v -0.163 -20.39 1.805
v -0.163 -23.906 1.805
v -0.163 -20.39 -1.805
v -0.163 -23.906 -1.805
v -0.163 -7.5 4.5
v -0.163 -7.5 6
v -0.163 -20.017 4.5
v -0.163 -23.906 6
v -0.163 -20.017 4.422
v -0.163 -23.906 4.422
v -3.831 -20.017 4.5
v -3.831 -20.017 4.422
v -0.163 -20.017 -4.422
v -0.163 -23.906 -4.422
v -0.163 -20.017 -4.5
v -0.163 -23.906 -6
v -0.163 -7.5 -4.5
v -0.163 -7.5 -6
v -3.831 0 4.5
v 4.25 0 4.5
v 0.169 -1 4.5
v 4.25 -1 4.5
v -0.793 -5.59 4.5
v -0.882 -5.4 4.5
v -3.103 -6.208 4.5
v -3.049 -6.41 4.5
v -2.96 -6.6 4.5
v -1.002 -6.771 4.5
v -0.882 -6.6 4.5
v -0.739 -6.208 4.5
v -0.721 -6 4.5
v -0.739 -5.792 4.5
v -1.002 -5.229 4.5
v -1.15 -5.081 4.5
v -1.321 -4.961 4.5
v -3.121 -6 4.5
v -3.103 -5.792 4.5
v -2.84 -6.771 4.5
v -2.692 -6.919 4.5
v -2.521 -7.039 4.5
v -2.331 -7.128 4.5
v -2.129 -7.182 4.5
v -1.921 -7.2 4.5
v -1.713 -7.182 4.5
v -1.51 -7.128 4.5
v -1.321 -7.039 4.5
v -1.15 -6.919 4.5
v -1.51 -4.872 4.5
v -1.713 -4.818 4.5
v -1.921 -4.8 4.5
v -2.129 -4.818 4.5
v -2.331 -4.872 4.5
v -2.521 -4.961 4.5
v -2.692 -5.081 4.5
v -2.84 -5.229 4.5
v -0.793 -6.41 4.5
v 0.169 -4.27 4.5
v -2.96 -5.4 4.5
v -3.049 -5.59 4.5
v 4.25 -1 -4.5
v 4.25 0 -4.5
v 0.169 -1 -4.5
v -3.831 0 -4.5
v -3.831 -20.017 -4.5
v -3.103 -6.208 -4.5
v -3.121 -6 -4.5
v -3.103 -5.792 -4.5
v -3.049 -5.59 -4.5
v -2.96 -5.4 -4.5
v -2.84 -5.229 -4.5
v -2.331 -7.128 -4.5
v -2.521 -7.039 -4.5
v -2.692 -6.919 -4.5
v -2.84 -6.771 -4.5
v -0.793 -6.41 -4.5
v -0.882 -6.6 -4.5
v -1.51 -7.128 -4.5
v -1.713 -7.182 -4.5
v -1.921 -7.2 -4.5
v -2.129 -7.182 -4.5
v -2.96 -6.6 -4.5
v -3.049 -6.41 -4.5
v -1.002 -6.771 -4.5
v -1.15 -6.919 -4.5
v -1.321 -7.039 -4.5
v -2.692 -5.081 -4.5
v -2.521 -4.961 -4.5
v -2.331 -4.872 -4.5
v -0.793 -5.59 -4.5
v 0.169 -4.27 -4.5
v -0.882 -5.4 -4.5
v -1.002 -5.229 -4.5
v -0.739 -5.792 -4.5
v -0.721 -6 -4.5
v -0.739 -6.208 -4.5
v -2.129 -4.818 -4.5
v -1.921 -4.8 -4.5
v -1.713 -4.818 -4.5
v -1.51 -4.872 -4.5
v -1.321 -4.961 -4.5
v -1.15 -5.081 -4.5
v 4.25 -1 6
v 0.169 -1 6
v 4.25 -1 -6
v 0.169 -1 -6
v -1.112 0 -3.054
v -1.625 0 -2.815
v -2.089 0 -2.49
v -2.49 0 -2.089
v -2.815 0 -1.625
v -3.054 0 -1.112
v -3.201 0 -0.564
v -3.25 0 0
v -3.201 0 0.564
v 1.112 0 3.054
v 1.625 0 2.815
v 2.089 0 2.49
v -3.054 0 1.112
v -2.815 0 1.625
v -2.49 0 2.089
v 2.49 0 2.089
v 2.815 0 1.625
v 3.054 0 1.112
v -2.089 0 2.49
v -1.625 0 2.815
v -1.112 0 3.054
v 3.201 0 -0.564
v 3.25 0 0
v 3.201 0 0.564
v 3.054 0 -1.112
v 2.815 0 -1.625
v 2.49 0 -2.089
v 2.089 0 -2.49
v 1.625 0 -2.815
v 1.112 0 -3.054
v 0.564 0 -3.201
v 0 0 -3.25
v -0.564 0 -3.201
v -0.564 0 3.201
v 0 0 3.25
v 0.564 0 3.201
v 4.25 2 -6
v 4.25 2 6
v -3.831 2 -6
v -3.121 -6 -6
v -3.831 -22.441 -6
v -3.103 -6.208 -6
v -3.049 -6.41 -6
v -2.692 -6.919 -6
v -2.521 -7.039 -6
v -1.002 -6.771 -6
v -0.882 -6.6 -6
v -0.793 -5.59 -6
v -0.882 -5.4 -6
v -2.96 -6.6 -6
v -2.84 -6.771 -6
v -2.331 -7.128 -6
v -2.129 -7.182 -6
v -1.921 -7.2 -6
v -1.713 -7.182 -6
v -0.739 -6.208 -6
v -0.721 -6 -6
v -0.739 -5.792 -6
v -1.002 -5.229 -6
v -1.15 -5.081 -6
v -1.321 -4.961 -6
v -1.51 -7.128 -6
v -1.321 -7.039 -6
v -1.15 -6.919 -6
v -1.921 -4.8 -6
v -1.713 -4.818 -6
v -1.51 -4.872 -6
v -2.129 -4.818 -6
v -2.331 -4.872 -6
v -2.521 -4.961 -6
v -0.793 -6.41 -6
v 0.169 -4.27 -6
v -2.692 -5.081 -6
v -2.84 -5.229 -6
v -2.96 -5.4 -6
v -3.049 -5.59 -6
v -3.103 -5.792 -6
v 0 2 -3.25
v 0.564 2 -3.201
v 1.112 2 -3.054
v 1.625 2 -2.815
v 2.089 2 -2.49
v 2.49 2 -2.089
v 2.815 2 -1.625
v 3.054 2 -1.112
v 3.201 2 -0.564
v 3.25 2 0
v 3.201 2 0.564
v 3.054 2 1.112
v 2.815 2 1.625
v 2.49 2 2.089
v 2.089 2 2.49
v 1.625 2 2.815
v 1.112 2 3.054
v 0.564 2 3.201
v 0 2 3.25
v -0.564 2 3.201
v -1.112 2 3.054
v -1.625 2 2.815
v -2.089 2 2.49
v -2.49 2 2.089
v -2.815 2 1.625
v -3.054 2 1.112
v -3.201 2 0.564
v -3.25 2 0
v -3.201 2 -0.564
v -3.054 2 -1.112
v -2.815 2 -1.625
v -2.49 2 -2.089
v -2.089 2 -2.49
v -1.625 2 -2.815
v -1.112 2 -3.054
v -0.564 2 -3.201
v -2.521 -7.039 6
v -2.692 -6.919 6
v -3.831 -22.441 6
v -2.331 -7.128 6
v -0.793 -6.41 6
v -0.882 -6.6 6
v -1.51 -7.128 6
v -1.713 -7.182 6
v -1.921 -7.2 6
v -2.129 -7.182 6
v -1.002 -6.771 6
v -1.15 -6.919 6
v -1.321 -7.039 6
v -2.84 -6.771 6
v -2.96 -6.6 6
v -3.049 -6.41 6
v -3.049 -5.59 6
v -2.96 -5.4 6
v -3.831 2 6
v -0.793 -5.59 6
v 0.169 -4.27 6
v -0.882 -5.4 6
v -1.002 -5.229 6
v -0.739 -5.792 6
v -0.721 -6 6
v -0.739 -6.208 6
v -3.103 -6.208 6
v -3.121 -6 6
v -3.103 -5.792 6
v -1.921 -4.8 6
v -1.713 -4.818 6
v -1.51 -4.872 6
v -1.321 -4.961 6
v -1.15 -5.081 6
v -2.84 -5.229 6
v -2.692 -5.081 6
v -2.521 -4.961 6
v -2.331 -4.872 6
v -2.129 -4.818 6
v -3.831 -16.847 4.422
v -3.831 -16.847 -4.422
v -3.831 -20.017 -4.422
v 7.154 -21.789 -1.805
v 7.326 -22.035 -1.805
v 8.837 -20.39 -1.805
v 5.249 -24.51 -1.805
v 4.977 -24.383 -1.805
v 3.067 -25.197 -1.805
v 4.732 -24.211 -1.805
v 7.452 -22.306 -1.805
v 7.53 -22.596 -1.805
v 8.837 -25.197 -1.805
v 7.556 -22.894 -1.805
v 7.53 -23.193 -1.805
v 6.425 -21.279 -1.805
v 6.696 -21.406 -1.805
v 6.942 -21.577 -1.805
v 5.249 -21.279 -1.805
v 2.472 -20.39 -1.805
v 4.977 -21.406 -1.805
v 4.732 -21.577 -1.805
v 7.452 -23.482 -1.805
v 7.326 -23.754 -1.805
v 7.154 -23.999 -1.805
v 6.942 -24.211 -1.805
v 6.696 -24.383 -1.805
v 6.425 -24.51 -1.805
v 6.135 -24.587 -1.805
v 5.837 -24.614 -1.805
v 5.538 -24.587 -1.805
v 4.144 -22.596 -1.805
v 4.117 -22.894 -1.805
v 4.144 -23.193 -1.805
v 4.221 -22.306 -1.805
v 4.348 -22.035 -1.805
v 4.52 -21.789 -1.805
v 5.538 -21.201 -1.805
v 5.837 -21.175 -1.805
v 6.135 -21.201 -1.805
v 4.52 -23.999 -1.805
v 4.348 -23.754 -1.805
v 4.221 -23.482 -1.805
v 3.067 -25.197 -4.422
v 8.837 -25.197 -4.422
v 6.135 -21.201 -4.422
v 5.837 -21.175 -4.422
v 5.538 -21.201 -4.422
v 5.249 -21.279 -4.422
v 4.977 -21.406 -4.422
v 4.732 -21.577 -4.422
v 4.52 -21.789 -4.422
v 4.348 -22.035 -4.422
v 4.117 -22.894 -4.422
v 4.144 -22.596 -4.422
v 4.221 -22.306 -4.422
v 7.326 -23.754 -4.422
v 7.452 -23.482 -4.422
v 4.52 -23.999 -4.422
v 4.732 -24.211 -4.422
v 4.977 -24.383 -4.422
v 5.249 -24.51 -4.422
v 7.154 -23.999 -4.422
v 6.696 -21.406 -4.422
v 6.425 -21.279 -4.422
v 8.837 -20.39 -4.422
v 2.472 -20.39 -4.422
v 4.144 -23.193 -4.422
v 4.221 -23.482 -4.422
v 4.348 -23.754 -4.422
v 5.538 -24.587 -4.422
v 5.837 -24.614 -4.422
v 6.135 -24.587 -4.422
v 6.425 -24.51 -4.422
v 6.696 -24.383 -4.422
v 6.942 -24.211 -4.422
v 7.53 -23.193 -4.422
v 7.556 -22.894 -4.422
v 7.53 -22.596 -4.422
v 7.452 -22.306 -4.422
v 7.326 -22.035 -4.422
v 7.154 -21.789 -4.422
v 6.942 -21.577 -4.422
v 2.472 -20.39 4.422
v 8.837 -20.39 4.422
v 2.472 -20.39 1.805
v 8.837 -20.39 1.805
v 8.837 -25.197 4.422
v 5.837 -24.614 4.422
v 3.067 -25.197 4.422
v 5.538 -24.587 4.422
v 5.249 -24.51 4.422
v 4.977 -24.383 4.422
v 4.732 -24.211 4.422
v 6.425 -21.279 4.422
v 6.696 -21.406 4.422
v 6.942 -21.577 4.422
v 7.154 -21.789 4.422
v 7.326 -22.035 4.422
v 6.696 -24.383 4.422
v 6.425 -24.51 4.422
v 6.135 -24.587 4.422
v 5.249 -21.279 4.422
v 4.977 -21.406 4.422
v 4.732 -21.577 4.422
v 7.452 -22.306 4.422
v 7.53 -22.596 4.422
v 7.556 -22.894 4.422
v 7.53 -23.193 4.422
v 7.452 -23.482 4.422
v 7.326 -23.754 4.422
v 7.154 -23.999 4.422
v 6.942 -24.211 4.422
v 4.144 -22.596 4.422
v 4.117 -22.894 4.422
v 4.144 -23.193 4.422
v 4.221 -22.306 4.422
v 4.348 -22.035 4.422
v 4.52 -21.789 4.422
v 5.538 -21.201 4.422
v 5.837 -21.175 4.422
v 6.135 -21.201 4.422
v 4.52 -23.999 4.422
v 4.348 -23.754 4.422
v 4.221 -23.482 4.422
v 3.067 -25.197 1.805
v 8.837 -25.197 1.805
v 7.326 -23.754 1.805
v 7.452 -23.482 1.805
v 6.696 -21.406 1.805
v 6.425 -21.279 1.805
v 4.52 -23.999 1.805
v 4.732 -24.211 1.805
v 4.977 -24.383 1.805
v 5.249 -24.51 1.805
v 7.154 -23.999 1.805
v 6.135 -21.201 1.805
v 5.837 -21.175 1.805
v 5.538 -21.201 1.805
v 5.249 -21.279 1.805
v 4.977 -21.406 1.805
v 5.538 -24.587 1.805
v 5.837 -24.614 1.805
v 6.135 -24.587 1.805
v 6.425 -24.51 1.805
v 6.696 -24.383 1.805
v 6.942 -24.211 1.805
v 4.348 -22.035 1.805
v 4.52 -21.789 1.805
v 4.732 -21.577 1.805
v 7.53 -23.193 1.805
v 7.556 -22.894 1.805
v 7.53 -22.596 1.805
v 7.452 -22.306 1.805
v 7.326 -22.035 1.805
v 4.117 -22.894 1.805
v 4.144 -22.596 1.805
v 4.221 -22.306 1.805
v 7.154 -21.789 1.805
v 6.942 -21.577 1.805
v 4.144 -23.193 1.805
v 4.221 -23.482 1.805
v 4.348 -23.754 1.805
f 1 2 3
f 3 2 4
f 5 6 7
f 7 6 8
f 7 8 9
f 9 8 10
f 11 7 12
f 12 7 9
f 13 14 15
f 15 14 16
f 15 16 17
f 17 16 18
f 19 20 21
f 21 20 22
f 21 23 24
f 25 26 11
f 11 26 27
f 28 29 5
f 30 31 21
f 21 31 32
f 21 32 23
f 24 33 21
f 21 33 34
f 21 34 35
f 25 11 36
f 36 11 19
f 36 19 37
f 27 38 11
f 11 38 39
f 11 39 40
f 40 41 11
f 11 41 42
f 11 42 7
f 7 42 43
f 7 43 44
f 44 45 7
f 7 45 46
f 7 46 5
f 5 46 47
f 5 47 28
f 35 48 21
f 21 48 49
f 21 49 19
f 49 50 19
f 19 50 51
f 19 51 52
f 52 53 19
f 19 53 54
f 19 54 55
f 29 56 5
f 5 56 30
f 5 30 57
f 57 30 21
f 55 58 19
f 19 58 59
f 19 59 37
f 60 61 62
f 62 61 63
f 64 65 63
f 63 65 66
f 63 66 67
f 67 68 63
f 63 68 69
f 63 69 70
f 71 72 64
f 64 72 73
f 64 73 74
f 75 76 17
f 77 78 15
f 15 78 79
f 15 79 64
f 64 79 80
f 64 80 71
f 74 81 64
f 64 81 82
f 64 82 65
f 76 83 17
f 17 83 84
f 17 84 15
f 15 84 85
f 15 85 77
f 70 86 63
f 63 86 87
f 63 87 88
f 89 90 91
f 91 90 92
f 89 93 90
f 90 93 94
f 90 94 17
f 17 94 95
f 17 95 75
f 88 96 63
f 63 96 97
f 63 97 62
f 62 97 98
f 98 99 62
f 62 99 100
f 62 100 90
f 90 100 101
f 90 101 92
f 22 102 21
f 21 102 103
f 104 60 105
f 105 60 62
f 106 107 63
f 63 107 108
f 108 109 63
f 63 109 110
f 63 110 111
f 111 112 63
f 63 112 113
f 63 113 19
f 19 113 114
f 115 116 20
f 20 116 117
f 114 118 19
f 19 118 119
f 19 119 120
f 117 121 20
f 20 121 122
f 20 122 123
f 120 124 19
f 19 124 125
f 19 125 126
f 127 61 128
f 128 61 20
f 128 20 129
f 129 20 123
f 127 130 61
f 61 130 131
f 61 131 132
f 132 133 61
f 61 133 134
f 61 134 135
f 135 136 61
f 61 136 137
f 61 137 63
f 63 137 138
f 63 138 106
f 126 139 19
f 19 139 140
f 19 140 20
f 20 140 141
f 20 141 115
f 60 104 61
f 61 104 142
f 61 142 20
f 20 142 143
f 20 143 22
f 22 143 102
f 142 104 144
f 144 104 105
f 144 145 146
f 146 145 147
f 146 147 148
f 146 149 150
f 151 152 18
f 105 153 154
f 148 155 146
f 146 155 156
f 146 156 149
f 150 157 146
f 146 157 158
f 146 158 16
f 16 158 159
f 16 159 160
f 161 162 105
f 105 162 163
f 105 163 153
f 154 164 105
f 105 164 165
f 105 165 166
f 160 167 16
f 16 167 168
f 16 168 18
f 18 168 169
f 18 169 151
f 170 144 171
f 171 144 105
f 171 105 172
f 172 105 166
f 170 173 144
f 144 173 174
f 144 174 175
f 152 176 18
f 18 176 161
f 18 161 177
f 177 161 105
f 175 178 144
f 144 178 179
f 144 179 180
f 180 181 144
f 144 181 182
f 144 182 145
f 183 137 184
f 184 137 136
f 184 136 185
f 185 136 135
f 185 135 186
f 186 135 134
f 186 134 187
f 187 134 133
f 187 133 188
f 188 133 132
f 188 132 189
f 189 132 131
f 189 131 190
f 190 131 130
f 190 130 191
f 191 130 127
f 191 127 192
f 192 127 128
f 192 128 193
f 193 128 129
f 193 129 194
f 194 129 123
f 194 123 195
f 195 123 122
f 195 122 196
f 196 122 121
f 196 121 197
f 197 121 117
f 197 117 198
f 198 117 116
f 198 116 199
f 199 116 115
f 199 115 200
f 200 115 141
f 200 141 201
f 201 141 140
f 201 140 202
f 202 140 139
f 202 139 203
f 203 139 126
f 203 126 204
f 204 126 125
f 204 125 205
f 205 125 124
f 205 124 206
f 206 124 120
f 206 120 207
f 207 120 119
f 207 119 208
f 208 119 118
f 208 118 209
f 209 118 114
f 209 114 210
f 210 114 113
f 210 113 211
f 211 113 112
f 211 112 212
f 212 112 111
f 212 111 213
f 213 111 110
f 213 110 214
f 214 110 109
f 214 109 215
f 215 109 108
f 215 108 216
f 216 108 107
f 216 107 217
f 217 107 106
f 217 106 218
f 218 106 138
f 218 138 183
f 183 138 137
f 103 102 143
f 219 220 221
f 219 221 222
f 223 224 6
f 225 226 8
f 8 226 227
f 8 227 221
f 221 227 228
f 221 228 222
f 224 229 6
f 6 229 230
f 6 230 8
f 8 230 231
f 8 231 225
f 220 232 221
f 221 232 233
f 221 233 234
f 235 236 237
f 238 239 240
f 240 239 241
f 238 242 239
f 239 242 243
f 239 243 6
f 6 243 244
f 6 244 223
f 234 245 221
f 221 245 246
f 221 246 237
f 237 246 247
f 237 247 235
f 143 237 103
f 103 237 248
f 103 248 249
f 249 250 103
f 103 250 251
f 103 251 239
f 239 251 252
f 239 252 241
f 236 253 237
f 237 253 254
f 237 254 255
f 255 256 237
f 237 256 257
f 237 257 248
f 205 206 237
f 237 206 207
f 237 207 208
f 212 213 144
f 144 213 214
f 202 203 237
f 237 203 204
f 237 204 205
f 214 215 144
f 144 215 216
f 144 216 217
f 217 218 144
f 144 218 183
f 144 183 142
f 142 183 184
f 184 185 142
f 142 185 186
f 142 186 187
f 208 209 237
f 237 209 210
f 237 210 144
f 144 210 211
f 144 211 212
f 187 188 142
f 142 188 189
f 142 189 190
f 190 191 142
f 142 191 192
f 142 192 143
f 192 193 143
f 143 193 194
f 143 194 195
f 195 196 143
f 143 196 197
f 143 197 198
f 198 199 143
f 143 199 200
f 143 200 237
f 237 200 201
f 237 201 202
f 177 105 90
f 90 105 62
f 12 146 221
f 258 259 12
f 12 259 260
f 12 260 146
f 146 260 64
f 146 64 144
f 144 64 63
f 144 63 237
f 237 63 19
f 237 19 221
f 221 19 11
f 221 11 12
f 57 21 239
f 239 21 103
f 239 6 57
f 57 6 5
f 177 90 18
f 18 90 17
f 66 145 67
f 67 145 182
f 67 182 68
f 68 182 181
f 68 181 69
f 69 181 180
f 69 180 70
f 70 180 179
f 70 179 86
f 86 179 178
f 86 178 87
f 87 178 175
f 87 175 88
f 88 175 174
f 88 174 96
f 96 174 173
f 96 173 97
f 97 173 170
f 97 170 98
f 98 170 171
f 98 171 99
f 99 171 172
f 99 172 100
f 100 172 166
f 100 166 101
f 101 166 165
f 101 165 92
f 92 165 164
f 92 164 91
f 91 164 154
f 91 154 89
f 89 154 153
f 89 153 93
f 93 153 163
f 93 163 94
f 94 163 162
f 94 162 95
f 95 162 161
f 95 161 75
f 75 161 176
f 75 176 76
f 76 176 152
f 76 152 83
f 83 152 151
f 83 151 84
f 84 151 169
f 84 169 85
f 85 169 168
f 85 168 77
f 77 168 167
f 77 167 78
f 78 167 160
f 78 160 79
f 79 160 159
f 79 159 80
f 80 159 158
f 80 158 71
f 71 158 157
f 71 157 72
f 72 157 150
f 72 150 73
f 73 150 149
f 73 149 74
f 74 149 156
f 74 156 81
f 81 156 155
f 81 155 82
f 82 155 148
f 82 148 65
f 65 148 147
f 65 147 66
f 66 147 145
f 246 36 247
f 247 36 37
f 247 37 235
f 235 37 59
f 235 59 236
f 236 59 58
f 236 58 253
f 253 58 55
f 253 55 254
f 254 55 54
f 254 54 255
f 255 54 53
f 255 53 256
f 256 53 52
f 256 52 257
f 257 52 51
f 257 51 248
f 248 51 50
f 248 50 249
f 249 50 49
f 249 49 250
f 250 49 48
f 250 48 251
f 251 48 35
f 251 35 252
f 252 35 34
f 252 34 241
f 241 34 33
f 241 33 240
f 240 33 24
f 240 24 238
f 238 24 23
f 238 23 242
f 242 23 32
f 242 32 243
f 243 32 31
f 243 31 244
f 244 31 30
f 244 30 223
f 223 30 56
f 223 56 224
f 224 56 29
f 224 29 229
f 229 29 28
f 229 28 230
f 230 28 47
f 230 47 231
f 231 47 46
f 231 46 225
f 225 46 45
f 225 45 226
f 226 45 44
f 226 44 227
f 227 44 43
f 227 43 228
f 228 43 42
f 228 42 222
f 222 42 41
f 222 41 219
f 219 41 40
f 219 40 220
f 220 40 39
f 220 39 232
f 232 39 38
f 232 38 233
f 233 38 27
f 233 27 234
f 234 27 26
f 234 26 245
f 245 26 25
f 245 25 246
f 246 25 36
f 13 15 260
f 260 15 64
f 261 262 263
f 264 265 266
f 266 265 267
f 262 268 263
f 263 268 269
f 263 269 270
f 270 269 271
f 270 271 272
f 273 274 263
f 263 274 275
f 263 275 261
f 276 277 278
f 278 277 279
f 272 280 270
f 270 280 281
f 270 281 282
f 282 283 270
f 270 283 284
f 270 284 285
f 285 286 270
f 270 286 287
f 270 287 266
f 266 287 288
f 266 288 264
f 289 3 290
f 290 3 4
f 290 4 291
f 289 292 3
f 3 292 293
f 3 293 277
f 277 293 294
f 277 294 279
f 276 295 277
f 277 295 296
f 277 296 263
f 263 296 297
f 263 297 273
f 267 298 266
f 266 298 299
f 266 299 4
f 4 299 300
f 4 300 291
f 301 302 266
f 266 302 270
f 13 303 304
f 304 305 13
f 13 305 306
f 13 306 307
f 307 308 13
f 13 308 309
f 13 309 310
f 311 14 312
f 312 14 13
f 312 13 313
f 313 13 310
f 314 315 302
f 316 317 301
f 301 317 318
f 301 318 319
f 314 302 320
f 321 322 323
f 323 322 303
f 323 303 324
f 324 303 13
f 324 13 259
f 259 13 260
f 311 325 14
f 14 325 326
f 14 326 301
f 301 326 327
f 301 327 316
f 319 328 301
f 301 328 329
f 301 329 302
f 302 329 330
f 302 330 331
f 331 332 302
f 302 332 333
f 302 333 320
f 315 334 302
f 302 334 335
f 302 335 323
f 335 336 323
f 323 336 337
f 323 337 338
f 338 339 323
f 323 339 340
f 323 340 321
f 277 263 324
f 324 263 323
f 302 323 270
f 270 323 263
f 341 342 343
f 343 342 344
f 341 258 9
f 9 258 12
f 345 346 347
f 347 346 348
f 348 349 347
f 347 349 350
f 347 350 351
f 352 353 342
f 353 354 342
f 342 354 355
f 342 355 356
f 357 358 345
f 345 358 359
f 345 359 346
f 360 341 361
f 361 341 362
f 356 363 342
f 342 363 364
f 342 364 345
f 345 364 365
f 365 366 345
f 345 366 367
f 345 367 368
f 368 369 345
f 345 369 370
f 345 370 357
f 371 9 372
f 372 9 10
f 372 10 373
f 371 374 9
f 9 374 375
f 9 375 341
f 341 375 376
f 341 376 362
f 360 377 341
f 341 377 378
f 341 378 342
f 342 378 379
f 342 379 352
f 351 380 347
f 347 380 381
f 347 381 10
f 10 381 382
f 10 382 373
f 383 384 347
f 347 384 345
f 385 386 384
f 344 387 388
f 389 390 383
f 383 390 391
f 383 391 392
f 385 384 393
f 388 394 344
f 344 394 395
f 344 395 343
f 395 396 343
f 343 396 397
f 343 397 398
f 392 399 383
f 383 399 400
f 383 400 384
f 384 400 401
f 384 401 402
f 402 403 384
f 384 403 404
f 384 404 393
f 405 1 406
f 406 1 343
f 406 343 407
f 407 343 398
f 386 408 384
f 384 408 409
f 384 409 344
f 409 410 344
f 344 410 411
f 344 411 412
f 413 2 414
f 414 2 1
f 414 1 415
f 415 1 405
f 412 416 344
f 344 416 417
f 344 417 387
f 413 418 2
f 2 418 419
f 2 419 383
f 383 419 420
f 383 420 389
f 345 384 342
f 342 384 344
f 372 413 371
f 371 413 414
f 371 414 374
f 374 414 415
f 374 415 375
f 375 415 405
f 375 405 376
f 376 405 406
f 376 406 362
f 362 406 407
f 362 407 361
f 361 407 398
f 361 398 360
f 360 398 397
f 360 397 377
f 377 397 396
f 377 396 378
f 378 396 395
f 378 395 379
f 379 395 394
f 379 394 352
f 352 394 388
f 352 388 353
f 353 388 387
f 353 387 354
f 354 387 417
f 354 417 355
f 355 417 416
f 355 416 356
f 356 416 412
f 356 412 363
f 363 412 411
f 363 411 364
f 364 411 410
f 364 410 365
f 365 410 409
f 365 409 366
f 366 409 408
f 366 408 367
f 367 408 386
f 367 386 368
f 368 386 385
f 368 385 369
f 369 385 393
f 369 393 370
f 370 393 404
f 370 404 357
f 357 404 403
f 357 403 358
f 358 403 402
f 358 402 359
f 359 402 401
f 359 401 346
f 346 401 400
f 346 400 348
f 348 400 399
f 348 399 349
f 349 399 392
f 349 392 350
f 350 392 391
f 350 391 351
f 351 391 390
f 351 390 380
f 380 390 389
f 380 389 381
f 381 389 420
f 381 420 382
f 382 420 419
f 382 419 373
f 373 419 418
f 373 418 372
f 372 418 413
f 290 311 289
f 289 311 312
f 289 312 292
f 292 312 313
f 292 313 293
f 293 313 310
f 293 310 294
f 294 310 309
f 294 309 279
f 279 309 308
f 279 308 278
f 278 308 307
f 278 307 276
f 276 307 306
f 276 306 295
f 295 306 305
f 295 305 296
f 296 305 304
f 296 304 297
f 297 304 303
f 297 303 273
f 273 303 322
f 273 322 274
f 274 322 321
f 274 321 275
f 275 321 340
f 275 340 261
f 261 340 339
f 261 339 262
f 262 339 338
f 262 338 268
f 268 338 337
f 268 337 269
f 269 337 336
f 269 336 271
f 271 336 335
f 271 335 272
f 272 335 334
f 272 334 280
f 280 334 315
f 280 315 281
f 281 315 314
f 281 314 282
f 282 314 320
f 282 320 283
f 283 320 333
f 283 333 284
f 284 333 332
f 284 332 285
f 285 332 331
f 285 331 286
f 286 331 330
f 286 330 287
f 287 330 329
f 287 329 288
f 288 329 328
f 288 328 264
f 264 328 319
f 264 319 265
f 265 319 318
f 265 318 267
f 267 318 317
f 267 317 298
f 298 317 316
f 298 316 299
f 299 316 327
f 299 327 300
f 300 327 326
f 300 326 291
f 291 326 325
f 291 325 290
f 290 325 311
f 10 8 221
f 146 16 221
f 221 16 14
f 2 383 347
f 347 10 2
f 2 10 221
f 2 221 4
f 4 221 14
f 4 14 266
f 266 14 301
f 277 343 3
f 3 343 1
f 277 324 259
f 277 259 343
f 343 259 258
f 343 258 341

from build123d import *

# Parameters (mm, degrees)
SKETCH_1_R          = 3.25
EXTRUDE_1_DEPTH     = 2
SKETCH_1_3_W        = 8.5
SKETCH_1_3_H        = 1.5
EXTRUDE_2_DEPTH     = 1
SKETCH_2_W          = 4
SKETCH_2_H          = 1.5
EXTRUDE_3_DEPTH     = 6.5
CUT_EXTRUDE_1_DEPTH = 13
SKETCH_4_R          = 1.2
CUT_EXTRUDE_2_DEPTH = 13
SKETCH_5_W          = 0.419062678
SKETCH_5_H          = 3
CUT_EXTRUDE_3_DEPTH = 12
SKETCH_7_W          = 3.667600517
SKETCH_7_H          = 1.5
EXTRUDE_4_DEPTH     = 18
SKETCH_8_W          = 3.667600517
SKETCH_8_H          = 5.48261061
EXTRUDE_5_DEPTH     = 9
SKETCH_9_W          = 2.616581955
SKETCH_9_H          = 4.806747763
EXTRUDE_6_DEPTH     = 9
SKETCH_10_R         = 1.719166773
CUT_EXTRUDE_4_DEPTH = 11.421628998
CUT_EXTRUDE_5_DEPTH = 13
EXTRUDE_7_DEPTH     = 8.843258


with BuildPart() as part:
    # 草图1 → 凸台-拉伸1 (new body)
    with BuildSketch(Plane(origin=(0, 0, 0), x_dir=(1, 0, 0), z_dir=(0, 1, 0))):
        Polygon((-4.25, -4.25), (-4.25, -6), (4.25, -6), (4.25, -4.25), (4.25, 4.25), (4.25, 6), (-4.25, 6), (-4.25, 4.25), align=None)
        Circle(SKETCH_1_R, mode=Mode.SUBTRACT)
    extrude(amount=EXTRUDE_1_DEPTH)

    # 草图1<3> → 凸台-拉伸2 (add)
    with BuildSketch(Plane(origin=(0, 0, 0), x_dir=(1, 0, 0), z_dir=(0, 1, 0))):
        with Locations((0, -5.25)):
            Rectangle(SKETCH_1_3_W, SKETCH_1_3_H)
        with Locations((0, 5.25)):
            Rectangle(SKETCH_1_3_W, SKETCH_1_3_H)
    extrude(amount=-EXTRUDE_2_DEPTH)

    # 草图2 → 凸台-拉伸3 (add)
    with BuildSketch(Plane.XZ.offset(1)):
        with Locations((-1.830937322, -5.25)):
            Rectangle(SKETCH_2_W, SKETCH_2_H)
        with Locations((-1.830937322, 5.25)):
            Rectangle(SKETCH_2_W, SKETCH_2_H)
    extrude(amount=EXTRUDE_3_DEPTH)

    # 草图3 → 切除-拉伸1 (cut, through all)
    with BuildSketch(Plane(origin=(0, 0, -6), x_dir=(-1, 0, 0), z_dir=(0, 0, -1))):
        Polygon((-0.169062678, -4.270246896), (0.163336805, -7.5), (-0.169062678, -7.5), align=None)
    extrude(amount=-CUT_EXTRUDE_1_DEPTH, mode=Mode.SUBTRACT)

    # 草图4 → 切除-拉伸2 (cut, through all)
    with BuildSketch(Plane(origin=(0, 0, -6), x_dir=(-1, 0, 0), z_dir=(0, 0, -1))):
        with Locations((1.920905564, -6)):
            Circle(SKETCH_4_R)
    extrude(amount=-CUT_EXTRUDE_2_DEPTH, mode=Mode.SUBTRACT)

    # 草图5 → 切除-拉伸3 (cut)
    with BuildSketch(Plane(origin=(0, 0, -6), x_dir=(-1, 0, 0), z_dir=(0, 0, -1))):
        with Locations((4.040468661, 0.5)):
            Rectangle(SKETCH_5_W, SKETCH_5_H)
    extrude(amount=-CUT_EXTRUDE_3_DEPTH, mode=Mode.SUBTRACT)

    # 草图7 → 凸台-拉伸4 (add)
    with BuildSketch(Plane.XZ.offset(7.5)):
        with Locations((-1.997137064, 5.25)):
            Rectangle(SKETCH_7_W, SKETCH_7_H)
        with Locations((-1.997137064, -5.25)):
            Rectangle(SKETCH_7_W, SKETCH_7_H)
    extrude(amount=EXTRUDE_4_DEPTH)

    # 草图8 → 凸台-拉伸5 (add)
    with BuildSketch(Plane(origin=(0, 0, 4.5), x_dir=(-1, 0, 0), z_dir=(0, 0, -1))):
        with Locations((1.997137064, -22.758694695)):
            Rectangle(SKETCH_8_W, SKETCH_8_H)
    extrude(amount=EXTRUDE_5_DEPTH)

    # 草图9 → 凸台-拉伸6 (add)
    with BuildSketch(Plane(origin=(-0.163336805, 0, 0), x_dir=(0, 0, -1), z_dir=(1, 0, 0))):
        with Locations((3.113338021, -22.793424654)):
            Rectangle(SKETCH_9_W, SKETCH_9_H)
        with Locations((-3.113338021, -22.793424654)):
            Rectangle(SKETCH_9_W, SKETCH_9_H)
    extrude(amount=EXTRUDE_6_DEPTH)

    # 草图10 → 切除-拉伸4 (cut, through all)
    with BuildSketch(Plane(origin=(0, 0, -4.421628998), x_dir=(-1, 0, 0), z_dir=(0, 0, -1))):
        with Locations((-5.836663195, -22.894386417)):
            Circle(SKETCH_10_R)
    extrude(amount=-CUT_EXTRUDE_4_DEPTH, mode=Mode.SUBTRACT)

    # 草图11 → 切除-拉伸5 (cut, through all)
    with BuildSketch(Plane(origin=(0, 0, -6), x_dir=(-1, 0, 0), z_dir=(0, 0, -1))):
        Polygon((3.830937322, -22.440555736), (-3.067140817, -25.196798535), (0.381898253, -26.676483331), (3.830937322, -26.676483331), align=None)
    extrude(amount=-CUT_EXTRUDE_5_DEPTH, mode=Mode.SUBTRACT)

    # 草图13 → 凸台-拉伸7 (add)
    with BuildSketch(Plane(origin=(0, 0, -4.421628998), x_dir=(-1, 0, 0), z_dir=(0, 0, -1))):
        Polygon((-2.471529716, -20.390050772), (3.830937322, -16.84684298), (3.830937322, -20.390050772), align=None)
    extrude(amount=-EXTRUDE_7_DEPTH)


solid = part.part
